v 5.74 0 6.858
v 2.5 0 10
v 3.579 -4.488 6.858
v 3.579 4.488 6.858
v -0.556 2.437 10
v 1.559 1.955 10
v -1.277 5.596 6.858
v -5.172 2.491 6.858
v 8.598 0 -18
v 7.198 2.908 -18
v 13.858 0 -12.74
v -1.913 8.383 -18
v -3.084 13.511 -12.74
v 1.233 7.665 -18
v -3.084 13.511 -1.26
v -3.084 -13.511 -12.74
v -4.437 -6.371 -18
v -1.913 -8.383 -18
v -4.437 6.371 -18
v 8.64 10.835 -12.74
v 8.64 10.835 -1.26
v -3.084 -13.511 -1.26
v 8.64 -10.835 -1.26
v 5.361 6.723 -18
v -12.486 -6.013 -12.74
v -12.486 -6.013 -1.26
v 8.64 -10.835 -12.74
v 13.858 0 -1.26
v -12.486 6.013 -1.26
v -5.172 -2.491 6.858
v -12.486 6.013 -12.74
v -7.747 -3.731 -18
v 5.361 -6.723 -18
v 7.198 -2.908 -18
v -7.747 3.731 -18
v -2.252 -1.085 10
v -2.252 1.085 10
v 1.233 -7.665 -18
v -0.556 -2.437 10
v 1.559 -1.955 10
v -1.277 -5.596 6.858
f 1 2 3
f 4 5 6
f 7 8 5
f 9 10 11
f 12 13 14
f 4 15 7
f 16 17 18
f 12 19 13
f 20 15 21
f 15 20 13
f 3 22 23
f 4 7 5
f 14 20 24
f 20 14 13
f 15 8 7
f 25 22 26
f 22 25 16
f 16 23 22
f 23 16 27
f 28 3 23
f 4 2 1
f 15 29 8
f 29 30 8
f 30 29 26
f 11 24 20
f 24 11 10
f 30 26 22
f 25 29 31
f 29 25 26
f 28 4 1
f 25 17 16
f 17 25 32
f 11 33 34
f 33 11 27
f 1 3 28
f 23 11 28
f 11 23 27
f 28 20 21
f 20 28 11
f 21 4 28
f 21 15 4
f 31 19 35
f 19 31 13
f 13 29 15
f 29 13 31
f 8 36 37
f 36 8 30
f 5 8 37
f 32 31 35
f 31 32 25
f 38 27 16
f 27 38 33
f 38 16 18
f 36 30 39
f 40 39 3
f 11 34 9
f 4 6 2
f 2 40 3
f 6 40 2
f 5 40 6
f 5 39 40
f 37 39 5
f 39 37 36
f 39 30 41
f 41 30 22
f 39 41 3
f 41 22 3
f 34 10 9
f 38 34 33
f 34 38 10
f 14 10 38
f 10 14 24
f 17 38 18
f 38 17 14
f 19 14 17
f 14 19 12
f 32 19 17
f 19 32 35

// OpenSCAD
$fn=7;
color("blue") intersection(){
hull(){
    cylinder(d2=5,d1=25,h=10);
translate([0,0,-7]) sphere(d=30);
}
translate([0,0,-3]) cube([30,30,30],center=true);
}
